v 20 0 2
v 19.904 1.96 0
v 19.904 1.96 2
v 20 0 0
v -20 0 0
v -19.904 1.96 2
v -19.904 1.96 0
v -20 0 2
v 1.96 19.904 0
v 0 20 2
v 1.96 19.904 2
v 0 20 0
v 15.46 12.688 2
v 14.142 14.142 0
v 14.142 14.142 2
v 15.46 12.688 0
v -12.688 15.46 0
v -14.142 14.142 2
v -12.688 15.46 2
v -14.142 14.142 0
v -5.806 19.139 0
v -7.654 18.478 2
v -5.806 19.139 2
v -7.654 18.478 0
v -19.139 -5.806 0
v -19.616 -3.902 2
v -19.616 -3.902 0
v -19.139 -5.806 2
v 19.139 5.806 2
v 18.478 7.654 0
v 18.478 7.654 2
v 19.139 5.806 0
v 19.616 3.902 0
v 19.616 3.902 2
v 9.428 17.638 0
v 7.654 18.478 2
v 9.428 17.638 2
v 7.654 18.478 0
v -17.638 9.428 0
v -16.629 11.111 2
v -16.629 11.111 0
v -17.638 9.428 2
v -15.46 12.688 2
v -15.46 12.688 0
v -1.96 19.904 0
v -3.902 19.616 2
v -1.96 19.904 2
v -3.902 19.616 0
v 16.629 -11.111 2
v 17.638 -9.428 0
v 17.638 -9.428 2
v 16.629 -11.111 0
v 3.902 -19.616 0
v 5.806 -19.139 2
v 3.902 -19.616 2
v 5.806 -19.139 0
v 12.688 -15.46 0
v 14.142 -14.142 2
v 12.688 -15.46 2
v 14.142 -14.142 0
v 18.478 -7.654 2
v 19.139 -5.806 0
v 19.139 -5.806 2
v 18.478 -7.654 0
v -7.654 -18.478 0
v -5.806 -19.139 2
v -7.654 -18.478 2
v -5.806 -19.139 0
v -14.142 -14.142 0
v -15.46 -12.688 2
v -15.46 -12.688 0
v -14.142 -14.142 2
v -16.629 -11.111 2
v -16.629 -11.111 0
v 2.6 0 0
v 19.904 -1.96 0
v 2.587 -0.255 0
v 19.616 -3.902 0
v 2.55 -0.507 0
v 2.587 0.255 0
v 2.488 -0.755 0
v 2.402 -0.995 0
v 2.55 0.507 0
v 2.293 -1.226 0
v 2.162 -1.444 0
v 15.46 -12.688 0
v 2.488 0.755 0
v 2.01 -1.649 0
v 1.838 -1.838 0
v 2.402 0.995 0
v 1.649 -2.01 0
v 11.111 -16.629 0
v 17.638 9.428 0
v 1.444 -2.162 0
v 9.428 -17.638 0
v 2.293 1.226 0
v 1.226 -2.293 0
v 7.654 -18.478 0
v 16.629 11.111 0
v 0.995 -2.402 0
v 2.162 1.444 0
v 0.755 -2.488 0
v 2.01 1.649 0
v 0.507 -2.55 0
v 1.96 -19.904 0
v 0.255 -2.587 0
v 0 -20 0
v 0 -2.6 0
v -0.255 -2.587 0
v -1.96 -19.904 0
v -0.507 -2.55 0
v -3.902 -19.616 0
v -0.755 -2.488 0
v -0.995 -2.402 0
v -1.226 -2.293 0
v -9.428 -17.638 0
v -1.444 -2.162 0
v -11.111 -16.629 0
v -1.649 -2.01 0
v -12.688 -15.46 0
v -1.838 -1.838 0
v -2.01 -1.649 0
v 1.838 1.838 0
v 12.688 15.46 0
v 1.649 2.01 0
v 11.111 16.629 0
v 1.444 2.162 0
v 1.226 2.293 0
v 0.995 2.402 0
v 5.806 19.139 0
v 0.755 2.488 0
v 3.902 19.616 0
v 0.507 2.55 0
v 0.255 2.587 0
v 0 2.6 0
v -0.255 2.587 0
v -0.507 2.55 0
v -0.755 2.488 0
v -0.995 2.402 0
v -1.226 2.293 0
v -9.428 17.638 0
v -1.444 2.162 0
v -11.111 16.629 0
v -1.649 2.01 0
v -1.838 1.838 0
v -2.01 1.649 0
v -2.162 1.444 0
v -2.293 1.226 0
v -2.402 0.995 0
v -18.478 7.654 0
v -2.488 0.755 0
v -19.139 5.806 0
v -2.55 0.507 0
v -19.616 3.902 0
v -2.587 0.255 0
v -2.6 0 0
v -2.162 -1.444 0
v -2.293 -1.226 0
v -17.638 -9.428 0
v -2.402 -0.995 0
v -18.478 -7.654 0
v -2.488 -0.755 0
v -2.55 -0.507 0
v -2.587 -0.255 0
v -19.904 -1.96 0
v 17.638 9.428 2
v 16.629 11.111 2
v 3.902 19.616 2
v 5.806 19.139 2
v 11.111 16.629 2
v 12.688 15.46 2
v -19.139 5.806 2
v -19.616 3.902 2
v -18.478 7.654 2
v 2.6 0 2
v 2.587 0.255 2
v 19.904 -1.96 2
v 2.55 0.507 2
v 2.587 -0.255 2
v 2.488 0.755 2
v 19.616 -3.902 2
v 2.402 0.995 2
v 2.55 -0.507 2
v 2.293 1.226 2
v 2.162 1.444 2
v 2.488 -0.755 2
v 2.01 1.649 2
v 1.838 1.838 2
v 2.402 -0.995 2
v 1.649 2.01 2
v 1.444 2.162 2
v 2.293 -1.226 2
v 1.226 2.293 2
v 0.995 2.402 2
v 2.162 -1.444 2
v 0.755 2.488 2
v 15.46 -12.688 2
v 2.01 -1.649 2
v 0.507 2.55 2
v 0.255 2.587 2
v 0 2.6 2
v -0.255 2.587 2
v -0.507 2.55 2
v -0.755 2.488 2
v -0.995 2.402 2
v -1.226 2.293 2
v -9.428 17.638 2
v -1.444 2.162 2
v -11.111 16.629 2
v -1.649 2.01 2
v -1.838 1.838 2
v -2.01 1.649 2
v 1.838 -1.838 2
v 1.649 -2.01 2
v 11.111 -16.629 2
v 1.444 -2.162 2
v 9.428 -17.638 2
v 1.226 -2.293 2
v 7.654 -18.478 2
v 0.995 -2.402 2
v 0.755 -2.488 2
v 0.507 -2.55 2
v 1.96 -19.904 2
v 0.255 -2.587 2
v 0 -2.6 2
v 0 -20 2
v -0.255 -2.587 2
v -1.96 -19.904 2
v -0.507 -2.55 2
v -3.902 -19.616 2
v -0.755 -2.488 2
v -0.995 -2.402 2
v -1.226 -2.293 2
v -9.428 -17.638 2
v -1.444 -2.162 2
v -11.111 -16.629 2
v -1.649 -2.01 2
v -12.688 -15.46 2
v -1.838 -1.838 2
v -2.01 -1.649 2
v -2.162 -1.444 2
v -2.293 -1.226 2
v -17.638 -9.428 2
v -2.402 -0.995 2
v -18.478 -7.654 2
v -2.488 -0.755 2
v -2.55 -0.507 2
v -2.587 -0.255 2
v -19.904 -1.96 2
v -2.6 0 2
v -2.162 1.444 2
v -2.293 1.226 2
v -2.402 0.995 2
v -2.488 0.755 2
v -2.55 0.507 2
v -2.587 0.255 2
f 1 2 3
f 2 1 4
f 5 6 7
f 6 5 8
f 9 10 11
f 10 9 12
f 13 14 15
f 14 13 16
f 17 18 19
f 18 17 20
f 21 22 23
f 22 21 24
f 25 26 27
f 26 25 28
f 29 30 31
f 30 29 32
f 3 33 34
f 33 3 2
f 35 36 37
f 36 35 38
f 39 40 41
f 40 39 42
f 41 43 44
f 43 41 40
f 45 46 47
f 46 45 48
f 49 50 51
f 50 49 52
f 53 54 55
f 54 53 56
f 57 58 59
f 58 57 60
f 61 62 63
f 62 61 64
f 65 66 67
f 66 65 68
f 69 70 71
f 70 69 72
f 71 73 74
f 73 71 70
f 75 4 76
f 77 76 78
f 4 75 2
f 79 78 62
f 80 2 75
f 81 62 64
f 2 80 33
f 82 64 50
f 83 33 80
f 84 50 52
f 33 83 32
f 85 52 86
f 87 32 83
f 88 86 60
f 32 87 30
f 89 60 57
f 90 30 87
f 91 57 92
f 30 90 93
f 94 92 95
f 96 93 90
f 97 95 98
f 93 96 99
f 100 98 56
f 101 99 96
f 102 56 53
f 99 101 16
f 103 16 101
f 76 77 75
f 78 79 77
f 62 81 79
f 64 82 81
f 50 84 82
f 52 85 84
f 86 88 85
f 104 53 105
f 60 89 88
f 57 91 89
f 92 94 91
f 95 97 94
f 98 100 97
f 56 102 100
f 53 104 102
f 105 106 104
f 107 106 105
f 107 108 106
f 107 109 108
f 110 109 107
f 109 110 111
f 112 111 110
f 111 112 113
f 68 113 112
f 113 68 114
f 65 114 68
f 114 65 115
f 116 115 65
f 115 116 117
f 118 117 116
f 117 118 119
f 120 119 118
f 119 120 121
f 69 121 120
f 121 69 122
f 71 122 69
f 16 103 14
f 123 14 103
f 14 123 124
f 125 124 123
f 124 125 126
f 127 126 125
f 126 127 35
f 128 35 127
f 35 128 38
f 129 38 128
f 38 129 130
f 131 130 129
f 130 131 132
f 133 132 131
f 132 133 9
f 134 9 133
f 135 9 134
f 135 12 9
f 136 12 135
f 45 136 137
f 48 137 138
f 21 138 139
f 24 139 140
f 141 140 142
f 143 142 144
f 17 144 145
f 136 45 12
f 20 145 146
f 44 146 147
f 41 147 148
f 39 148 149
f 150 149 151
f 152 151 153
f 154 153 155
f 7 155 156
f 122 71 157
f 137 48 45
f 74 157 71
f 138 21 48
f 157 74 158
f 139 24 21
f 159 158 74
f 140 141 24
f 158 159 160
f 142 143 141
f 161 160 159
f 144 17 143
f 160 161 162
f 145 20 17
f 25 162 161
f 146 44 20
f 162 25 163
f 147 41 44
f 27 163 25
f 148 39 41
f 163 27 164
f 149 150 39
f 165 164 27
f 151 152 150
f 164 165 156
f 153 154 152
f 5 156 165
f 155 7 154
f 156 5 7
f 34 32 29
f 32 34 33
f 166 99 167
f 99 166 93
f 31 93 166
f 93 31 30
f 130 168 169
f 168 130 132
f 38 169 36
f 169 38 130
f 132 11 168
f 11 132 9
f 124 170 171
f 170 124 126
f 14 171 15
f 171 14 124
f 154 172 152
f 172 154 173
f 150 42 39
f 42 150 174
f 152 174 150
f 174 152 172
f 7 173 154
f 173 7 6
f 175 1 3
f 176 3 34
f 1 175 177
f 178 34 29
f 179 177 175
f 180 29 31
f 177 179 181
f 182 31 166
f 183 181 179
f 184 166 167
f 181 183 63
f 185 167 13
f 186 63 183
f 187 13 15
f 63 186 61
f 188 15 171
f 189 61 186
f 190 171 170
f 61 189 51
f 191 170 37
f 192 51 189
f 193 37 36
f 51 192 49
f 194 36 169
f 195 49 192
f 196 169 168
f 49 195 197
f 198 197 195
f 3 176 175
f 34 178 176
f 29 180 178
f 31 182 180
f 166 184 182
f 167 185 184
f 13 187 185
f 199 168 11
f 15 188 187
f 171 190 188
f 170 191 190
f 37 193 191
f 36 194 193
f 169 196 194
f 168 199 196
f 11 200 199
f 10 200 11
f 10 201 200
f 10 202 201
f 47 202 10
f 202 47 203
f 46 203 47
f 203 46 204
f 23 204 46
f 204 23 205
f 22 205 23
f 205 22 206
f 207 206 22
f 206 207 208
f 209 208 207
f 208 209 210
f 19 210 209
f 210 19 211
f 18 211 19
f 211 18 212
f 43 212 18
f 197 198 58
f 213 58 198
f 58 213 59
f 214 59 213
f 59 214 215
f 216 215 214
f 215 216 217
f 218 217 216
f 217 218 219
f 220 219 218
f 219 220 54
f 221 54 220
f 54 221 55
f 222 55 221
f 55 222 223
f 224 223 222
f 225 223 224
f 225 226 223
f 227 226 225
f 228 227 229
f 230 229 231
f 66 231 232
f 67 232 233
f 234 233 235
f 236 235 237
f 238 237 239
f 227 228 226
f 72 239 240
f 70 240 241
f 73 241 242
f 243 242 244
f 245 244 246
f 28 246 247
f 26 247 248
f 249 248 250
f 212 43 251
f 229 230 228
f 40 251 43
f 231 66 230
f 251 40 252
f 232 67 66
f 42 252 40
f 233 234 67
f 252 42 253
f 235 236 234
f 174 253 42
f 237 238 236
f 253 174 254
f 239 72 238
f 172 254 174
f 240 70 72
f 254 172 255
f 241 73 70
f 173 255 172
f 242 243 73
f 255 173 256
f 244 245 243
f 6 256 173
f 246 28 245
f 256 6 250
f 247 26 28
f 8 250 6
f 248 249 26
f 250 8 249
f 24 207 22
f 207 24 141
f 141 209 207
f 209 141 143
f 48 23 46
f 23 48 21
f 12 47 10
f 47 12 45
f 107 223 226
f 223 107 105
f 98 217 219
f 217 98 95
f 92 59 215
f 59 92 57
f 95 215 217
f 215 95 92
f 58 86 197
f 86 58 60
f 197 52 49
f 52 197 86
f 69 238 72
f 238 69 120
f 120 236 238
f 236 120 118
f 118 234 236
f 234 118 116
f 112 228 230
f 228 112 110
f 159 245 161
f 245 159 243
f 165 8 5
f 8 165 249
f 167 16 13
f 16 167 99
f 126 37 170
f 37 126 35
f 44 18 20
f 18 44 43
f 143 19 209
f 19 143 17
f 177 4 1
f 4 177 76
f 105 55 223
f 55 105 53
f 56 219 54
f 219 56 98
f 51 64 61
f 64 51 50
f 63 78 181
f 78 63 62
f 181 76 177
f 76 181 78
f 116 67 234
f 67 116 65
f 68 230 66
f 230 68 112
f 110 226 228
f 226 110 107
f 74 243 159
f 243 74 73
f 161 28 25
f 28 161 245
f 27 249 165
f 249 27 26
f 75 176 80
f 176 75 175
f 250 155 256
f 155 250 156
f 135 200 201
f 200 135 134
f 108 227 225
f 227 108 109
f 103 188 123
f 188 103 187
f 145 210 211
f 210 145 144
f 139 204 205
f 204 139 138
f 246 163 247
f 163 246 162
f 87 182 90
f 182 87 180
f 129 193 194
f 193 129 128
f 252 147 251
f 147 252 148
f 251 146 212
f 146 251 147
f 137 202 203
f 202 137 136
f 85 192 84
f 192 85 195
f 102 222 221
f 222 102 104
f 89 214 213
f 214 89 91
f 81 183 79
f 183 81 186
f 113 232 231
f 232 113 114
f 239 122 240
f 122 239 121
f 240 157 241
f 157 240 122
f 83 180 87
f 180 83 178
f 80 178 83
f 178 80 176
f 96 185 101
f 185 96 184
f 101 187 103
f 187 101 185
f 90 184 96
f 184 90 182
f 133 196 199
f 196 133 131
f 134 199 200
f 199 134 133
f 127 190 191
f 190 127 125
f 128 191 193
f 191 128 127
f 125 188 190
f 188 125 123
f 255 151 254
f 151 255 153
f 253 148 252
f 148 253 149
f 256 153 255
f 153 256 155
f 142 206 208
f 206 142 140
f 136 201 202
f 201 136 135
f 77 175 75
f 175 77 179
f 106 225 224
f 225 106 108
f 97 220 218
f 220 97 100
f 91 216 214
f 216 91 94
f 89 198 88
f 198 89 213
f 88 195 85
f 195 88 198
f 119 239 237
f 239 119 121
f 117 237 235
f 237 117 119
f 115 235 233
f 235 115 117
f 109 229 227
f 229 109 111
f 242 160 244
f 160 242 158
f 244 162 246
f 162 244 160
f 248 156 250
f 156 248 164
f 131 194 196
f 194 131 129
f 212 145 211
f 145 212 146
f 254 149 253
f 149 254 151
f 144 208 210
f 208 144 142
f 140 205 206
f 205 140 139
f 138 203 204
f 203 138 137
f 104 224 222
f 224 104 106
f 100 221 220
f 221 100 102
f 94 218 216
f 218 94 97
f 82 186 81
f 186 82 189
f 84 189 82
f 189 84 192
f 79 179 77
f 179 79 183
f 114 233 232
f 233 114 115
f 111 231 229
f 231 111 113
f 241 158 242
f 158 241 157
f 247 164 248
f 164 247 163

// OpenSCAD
$fn = 64;
module hole(){
translate([0,0,50/2])
cylinder(h=100,d = 5.2, center = true);}

translate([0,0,1])
difference(){
cylinder(h = 2, d= 40, center = true);
hole();
}
